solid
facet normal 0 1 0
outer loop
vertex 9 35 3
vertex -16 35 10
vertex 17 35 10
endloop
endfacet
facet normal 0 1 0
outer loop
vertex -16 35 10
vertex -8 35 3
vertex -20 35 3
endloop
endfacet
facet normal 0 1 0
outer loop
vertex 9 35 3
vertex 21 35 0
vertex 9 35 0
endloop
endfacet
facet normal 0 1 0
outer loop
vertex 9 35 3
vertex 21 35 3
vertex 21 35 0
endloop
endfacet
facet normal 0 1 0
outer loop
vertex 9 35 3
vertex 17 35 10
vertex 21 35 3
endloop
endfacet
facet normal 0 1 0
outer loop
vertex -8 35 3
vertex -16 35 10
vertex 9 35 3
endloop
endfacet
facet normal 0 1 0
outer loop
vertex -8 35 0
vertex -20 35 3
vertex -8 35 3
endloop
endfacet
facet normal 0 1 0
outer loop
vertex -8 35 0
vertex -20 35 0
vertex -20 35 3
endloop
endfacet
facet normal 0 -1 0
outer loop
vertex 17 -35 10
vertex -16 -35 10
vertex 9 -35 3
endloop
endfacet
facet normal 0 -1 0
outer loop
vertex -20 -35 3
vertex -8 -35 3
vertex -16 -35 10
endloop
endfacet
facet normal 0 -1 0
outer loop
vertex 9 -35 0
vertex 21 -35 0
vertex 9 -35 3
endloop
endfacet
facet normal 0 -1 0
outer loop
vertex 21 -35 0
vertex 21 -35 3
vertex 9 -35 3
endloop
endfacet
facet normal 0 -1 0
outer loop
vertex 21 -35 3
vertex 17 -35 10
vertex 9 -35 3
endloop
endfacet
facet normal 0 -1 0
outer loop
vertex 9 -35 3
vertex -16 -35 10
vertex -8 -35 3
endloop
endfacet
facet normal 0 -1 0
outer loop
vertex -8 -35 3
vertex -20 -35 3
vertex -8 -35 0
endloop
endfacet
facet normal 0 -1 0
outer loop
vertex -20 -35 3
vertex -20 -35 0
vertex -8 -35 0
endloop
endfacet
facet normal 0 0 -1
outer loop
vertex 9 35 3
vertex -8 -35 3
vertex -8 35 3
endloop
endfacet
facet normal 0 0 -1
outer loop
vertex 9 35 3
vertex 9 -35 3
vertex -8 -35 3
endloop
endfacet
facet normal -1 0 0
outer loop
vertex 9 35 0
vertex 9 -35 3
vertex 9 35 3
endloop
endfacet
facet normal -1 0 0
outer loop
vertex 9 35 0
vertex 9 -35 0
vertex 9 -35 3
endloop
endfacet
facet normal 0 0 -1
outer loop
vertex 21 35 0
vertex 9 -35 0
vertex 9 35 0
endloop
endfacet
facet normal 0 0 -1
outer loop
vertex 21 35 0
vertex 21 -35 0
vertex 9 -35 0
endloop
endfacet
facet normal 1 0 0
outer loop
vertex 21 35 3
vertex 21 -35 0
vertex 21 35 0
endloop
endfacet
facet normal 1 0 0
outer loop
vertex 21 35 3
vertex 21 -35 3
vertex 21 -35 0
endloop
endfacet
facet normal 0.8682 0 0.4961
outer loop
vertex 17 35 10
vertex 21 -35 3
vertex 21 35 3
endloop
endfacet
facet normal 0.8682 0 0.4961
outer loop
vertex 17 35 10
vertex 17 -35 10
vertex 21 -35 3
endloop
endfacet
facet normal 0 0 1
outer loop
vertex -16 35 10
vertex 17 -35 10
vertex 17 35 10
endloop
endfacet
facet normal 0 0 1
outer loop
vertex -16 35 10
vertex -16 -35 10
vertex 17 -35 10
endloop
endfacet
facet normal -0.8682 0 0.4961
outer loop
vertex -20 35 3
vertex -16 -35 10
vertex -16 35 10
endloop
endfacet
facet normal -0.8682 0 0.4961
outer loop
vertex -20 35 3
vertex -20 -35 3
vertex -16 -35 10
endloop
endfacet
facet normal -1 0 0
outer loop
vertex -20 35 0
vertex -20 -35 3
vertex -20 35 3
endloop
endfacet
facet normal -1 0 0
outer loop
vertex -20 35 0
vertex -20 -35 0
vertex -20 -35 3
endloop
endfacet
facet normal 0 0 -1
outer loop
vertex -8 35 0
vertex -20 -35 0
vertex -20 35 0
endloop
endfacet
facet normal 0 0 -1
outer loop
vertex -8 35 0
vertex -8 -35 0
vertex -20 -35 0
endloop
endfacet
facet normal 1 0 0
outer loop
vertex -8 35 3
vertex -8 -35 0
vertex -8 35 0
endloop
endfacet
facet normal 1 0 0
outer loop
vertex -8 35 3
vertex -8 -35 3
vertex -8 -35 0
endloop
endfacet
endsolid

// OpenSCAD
module queue_aronde_ulanzi_ombra_video(length = 70, shrink = 0) {
    // set "shrink" to 1(mm) for Manfrotto compatibility, or 0 for original model

    width  = 41-shrink;
    height = 10;

    translate([-20, length/2, 0]) 
        rotate([90,0,0]) 
            linear_extrude(length) {
                polygon([[0,0],[12,0],[12,3],[width-12,3],[width-12,0],[width,0],[width,3],[width-4,height],[4,height],[0,3]]);
            }
}

queue_aronde_ulanzi_ombra_video(length = 70, shrink = 0);
